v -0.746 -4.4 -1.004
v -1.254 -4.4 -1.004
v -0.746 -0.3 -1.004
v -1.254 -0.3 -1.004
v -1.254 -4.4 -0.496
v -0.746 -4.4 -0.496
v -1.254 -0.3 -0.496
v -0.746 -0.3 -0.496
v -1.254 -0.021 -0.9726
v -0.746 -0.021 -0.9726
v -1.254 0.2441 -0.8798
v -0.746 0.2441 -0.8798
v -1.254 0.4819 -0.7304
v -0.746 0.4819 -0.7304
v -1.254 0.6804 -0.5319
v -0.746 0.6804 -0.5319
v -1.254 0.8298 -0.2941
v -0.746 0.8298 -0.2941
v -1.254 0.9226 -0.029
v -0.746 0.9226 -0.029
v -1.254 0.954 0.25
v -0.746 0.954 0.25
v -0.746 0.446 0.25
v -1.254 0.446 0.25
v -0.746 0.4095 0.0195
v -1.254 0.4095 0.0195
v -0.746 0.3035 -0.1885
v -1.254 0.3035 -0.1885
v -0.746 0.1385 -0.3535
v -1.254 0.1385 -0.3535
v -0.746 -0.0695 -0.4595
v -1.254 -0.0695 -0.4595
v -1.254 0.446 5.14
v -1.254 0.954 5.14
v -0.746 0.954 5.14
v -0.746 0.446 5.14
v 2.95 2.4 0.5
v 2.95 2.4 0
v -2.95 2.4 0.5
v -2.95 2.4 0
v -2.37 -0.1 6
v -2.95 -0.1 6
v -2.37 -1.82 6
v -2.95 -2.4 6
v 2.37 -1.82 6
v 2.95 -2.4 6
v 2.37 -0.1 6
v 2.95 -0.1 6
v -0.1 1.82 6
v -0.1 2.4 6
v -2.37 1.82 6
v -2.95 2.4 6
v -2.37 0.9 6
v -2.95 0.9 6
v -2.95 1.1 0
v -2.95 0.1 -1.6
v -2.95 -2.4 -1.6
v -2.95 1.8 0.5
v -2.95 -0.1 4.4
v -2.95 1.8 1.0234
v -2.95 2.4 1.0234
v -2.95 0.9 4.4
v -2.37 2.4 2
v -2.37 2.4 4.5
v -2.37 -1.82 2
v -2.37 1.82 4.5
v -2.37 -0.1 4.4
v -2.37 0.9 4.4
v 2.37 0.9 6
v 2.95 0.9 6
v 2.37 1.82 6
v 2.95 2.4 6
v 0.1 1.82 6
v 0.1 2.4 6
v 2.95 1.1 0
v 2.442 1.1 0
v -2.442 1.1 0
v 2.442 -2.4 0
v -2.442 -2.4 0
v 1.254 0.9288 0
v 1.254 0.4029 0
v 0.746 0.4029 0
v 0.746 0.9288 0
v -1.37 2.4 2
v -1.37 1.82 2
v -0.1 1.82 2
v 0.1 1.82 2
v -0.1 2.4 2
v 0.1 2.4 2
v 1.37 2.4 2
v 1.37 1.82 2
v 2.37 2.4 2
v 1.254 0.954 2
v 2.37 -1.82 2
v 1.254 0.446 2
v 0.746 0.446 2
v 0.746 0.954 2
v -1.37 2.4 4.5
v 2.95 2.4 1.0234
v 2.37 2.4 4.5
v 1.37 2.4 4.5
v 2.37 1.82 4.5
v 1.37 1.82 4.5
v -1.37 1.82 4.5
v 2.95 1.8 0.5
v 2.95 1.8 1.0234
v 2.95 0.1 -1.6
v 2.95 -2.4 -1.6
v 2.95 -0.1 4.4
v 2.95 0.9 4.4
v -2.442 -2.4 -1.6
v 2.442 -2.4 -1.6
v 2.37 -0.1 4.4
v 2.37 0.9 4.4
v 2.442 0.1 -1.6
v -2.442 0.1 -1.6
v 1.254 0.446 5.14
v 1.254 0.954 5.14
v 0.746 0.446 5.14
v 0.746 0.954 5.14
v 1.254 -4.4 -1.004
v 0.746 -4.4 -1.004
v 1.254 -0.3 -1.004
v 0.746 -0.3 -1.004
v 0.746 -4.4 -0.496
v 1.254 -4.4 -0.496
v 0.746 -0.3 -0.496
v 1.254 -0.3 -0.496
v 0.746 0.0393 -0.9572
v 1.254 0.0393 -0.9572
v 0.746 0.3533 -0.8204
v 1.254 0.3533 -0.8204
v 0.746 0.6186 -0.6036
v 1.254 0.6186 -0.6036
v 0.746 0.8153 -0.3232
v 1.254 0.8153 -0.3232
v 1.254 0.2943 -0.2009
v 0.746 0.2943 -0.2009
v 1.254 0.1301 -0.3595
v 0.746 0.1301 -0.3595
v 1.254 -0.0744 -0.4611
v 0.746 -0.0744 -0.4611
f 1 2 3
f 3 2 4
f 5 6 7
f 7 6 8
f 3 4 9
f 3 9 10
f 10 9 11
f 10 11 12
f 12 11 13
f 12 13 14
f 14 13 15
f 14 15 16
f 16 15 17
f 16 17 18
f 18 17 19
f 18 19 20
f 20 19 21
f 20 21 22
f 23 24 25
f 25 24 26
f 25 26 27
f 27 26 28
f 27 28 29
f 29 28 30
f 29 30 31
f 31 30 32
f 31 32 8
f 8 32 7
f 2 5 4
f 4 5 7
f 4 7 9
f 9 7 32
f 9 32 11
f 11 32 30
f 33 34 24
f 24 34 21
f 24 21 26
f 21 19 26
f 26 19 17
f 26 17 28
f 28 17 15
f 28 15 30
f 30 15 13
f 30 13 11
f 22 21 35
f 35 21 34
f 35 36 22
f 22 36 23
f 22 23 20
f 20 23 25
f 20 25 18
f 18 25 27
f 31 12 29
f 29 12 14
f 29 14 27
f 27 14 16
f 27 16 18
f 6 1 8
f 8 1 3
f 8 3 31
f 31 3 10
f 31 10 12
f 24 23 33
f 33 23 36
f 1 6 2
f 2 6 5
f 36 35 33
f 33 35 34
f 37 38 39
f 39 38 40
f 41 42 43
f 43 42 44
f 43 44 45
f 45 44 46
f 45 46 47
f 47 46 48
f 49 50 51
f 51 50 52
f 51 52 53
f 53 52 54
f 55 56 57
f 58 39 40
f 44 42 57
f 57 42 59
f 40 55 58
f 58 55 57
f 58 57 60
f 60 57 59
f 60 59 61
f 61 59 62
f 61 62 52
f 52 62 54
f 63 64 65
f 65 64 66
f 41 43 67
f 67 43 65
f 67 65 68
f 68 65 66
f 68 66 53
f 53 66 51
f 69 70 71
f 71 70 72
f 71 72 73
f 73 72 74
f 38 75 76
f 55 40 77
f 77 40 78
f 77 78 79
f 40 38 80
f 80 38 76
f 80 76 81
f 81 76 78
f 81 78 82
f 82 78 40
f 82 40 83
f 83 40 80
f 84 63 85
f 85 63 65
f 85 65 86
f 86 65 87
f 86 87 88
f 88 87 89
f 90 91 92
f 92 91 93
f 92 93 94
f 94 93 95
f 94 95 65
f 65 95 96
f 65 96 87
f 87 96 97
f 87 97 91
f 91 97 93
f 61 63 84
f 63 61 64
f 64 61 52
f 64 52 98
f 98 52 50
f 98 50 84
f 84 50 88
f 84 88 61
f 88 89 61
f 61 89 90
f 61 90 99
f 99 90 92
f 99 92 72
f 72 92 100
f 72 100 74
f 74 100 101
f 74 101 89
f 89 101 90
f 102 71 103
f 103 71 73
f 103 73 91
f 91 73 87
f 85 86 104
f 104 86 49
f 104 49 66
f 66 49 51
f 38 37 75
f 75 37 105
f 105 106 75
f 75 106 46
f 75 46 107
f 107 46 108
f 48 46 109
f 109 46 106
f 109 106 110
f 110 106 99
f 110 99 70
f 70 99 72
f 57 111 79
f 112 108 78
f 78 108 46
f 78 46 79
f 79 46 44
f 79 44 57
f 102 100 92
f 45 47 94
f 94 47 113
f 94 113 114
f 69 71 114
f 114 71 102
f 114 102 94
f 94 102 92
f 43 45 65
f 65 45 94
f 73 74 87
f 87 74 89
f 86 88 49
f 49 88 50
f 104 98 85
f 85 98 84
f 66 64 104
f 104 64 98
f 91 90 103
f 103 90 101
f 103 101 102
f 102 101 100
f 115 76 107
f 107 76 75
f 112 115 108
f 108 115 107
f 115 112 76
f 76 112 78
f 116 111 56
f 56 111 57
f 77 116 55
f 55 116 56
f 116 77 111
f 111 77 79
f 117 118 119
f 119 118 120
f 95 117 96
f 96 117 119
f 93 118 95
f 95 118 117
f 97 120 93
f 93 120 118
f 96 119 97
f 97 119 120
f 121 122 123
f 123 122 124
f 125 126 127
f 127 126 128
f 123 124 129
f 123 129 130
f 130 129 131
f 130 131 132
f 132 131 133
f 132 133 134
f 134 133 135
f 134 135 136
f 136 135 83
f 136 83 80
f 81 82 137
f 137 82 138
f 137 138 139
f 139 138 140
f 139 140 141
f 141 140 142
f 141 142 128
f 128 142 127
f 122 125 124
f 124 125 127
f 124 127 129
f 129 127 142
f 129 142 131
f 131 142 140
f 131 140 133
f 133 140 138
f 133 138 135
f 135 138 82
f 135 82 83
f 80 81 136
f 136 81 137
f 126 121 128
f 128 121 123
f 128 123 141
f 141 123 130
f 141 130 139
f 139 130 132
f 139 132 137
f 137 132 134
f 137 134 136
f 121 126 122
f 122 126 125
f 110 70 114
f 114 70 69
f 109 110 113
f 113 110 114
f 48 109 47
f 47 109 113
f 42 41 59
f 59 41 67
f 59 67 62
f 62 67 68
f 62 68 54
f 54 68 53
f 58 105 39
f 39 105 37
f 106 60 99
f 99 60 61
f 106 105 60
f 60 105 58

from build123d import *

# Parameters (mm, degrees)
SKETCH4_W                      = 5.9
SKETCH4_H                      = 4.8
BODY_EXTRUDE2_DEPTH            = 6
BODY_SHELL1_T                  = -0.58
BODY_SHELL1_THICKNESS_2_FACE_W = 4.74
BODY_SHELL1_THICKNESS_2_FACE_H = 3.64
BODY_SHELL1_THICKNESS_2_DEPTH  = 1.42
EXTRUDE1_REACH                 = 9.906
SKETCH66_W                     = 0.2
SKETCH66_H                     = 4
SKETCH66_W_2                   = 1
SKETCH66_H_2                   = 2.5
TAB_EXTRUDE4_DEPTH             = 0.508
TAB_EXTRUDE7_DEPTH             = 0.508
SKETCH64_W                     = 0.508
SKETCH64_H                     = 0.508
PINS_LPATTERN_COUNT            = 2
PINS_LPATTERN_PITCH            = 2
SKETCH67_W                     = 1.6
SKETCH67_H                     = 1
CUT_EXTRUDE2_DEPTH             = 1
SKETCH68_W                     = 5.9
SKETCH68_H                     = 0.52338994
CUT_EXTRUDE3_DEPTH             = 0.6


with BuildPart() as part:
    # Sketch4 → Body-Extrude2 (new body)
    with BuildSketch(Plane(origin=(6.86422654, -1.863703399, 0), x_dir=(1, 0, 0), z_dir=(0, 0, 1))):
        with Locations((-6.86422654, 1.863703399)):
            Rectangle(SKETCH4_W, SKETCH4_H)
    extrude(amount=BODY_EXTRUDE2_DEPTH)

    # Body-Shell1
    body_shell1_openings = [part.faces().sort_by_distance(p)[0] for p in [
        (0, 0, 6),
    ]]
    offset(amount=BODY_SHELL1_T, openings=body_shell1_openings, kind=Kind.INTERSECTION)

    # Body-Shell1 thickness 2 face (on inner face of the shell) → Body-Shell1 thickness 2 (add)
    with BuildSketch(Plane(origin=(0, 0, 0.58), x_dir=(-1, 0, 0), z_dir=(0, 0, -1))):
        Rectangle(BODY_SHELL1_THICKNESS_2_FACE_W, BODY_SHELL1_THICKNESS_2_FACE_H)
    extrude(amount=-BODY_SHELL1_THICKNESS_2_DEPTH)

    # Sketch66 → Extrude1 (cut, up to next)
    with BuildSketch(Plane(origin=(0, 1.82, 0), x_dir=(1, 0, 0), z_dir=(0, 1, 0)), mode=Mode.PRIVATE) as extrude1_sk1:
        with Locations((0, -4)):
            Rectangle(SKETCH66_W, SKETCH66_H)
    extrude1_tool1 = extrude(extrude1_sk1.sketch, amount=EXTRUDE1_REACH, mode=Mode.PRIVATE) & part.part
    # Sketch66 → Extrude1 (cut, up to next)
    with BuildSketch(Plane(origin=(0, 1.82, 0), x_dir=(1, 0, 0), z_dir=(0, 1, 0)), mode=Mode.PRIVATE) as extrude1_sk2:
        with Locations((-1.87, -3.25)):
            Rectangle(SKETCH66_W_2, SKETCH66_H_2)
    extrude1_tool2 = extrude(extrude1_sk2.sketch, amount=EXTRUDE1_REACH, mode=Mode.PRIVATE) & part.part
    # Sketch66 → Extrude1 (cut, up to next)
    with BuildSketch(Plane(origin=(0, 1.82, 0), x_dir=(1, 0, 0), z_dir=(0, 1, 0)), mode=Mode.PRIVATE) as extrude1_sk3:
        with Locations((1.87, -3.25)):
            Rectangle(SKETCH66_W_2, SKETCH66_H_2)
    extrude1_tool3 = extrude(extrude1_sk3.sketch, amount=EXTRUDE1_REACH, mode=Mode.PRIVATE) & part.part
    add(extrude1_tool1.solids().sort_by_distance((0, 1.82, 4))[0], mode=Mode.SUBTRACT)
    add(extrude1_tool2.solids().sort_by_distance((-1.87, 1.82, 3.25))[0], mode=Mode.SUBTRACT)
    add(extrude1_tool3.solids().sort_by_distance((1.87, 1.82, 3.25))[0], mode=Mode.SUBTRACT)

    # Sketch6 → Tab-Extrude4 (add)
    with BuildSketch(Plane(origin=(2.95, 11.117293973, 0), x_dir=(0, 0, -1), z_dir=(1, 0, 0))):
        Polygon((0, -10.017293973), (1.6, -11.017293973), (1.6, -13.517293973), (0, -13.517293973), align=None)
    extrude(amount=-TAB_EXTRUDE4_DEPTH)

    # Sketch9 → Tab-Extrude7 (add)
    with BuildSketch(Plane(origin=(-2.95, 11.117293973, 0), x_dir=(0, 0, 1), z_dir=(-1, 0, 0))):
        Polygon((0, -13.517293973), (0, -10.017293973), (-1.6, -11.017293973), (-1.6, -13.517293973), align=None)
    extrude(amount=-TAB_EXTRUDE7_DEPTH)


with BuildPart() as body_2:
    # Pins-Sweep: sweep along a path in Sketch65
    with BuildLine(Plane(origin=(0, 0, 0), x_dir=(0, 0, -1), z_dir=(1, 0, 0))) as pins_sweep_path:
        Line((-5.14, 0.7), (-0.25, 0.7))
        ThreePointArc((-0.25, 0.7), (0.457106781, 0.407106781), (0.75, -0.3))
        Line((0.75, -0.3), (0.75, -4.4))
    # Sketch64 → Pins-Sweep (sweep)
    with BuildSketch(Plane(origin=(0, 3.64, 5.14), x_dir=(1, 0, 0), z_dir=(0, 0, -1))):
        with Locations((-1, 2.94)):
            Rectangle(SKETCH64_W, SKETCH64_H)
    pins_sweep = sweep(path=pins_sweep_path.line)


with BuildPart() as part_1:
    add(part.part)

    # Pins-LPattern: Pins-Sweep ×2
    with Locations(*[(i * PINS_LPATTERN_PITCH, 0, 0) for i in range(1, PINS_LPATTERN_COUNT)]):
        add(pins_sweep)

    # Sketch67 → Cut-Extrude2 (cut)
    with BuildSketch(Plane(origin=(2.95, 0, 0), x_dir=(0, 0, -1), z_dir=(1, 0, 0))):
        with Locations((-5.2, 0.4)):
            Rectangle(SKETCH67_W, SKETCH67_H)
    cut_extrude2 = extrude(amount=-CUT_EXTRUDE2_DEPTH, mode=Mode.SUBTRACT)

    # Mirror1: Cut-Extrude2 across plane
    add(cut_extrude2.mirror(Plane(origin=(0, 0, 0), x_dir=(0, 0, 1), z_dir=(1, 0, 0))), mode=Mode.SUBTRACT)

    # Sketch68 → Cut-Extrude3 (cut)
    with BuildSketch(Plane(origin=(0, 2.4, 0), x_dir=(1, 0, 0), z_dir=(0, 1, 0))):
        with Locations((0, -0.76169497)):
            Rectangle(SKETCH68_W, SKETCH68_H)
    extrude(amount=-CUT_EXTRUDE3_DEPTH, mode=Mode.SUBTRACT)


solid = Compound([body_2.part, part_1.part])
